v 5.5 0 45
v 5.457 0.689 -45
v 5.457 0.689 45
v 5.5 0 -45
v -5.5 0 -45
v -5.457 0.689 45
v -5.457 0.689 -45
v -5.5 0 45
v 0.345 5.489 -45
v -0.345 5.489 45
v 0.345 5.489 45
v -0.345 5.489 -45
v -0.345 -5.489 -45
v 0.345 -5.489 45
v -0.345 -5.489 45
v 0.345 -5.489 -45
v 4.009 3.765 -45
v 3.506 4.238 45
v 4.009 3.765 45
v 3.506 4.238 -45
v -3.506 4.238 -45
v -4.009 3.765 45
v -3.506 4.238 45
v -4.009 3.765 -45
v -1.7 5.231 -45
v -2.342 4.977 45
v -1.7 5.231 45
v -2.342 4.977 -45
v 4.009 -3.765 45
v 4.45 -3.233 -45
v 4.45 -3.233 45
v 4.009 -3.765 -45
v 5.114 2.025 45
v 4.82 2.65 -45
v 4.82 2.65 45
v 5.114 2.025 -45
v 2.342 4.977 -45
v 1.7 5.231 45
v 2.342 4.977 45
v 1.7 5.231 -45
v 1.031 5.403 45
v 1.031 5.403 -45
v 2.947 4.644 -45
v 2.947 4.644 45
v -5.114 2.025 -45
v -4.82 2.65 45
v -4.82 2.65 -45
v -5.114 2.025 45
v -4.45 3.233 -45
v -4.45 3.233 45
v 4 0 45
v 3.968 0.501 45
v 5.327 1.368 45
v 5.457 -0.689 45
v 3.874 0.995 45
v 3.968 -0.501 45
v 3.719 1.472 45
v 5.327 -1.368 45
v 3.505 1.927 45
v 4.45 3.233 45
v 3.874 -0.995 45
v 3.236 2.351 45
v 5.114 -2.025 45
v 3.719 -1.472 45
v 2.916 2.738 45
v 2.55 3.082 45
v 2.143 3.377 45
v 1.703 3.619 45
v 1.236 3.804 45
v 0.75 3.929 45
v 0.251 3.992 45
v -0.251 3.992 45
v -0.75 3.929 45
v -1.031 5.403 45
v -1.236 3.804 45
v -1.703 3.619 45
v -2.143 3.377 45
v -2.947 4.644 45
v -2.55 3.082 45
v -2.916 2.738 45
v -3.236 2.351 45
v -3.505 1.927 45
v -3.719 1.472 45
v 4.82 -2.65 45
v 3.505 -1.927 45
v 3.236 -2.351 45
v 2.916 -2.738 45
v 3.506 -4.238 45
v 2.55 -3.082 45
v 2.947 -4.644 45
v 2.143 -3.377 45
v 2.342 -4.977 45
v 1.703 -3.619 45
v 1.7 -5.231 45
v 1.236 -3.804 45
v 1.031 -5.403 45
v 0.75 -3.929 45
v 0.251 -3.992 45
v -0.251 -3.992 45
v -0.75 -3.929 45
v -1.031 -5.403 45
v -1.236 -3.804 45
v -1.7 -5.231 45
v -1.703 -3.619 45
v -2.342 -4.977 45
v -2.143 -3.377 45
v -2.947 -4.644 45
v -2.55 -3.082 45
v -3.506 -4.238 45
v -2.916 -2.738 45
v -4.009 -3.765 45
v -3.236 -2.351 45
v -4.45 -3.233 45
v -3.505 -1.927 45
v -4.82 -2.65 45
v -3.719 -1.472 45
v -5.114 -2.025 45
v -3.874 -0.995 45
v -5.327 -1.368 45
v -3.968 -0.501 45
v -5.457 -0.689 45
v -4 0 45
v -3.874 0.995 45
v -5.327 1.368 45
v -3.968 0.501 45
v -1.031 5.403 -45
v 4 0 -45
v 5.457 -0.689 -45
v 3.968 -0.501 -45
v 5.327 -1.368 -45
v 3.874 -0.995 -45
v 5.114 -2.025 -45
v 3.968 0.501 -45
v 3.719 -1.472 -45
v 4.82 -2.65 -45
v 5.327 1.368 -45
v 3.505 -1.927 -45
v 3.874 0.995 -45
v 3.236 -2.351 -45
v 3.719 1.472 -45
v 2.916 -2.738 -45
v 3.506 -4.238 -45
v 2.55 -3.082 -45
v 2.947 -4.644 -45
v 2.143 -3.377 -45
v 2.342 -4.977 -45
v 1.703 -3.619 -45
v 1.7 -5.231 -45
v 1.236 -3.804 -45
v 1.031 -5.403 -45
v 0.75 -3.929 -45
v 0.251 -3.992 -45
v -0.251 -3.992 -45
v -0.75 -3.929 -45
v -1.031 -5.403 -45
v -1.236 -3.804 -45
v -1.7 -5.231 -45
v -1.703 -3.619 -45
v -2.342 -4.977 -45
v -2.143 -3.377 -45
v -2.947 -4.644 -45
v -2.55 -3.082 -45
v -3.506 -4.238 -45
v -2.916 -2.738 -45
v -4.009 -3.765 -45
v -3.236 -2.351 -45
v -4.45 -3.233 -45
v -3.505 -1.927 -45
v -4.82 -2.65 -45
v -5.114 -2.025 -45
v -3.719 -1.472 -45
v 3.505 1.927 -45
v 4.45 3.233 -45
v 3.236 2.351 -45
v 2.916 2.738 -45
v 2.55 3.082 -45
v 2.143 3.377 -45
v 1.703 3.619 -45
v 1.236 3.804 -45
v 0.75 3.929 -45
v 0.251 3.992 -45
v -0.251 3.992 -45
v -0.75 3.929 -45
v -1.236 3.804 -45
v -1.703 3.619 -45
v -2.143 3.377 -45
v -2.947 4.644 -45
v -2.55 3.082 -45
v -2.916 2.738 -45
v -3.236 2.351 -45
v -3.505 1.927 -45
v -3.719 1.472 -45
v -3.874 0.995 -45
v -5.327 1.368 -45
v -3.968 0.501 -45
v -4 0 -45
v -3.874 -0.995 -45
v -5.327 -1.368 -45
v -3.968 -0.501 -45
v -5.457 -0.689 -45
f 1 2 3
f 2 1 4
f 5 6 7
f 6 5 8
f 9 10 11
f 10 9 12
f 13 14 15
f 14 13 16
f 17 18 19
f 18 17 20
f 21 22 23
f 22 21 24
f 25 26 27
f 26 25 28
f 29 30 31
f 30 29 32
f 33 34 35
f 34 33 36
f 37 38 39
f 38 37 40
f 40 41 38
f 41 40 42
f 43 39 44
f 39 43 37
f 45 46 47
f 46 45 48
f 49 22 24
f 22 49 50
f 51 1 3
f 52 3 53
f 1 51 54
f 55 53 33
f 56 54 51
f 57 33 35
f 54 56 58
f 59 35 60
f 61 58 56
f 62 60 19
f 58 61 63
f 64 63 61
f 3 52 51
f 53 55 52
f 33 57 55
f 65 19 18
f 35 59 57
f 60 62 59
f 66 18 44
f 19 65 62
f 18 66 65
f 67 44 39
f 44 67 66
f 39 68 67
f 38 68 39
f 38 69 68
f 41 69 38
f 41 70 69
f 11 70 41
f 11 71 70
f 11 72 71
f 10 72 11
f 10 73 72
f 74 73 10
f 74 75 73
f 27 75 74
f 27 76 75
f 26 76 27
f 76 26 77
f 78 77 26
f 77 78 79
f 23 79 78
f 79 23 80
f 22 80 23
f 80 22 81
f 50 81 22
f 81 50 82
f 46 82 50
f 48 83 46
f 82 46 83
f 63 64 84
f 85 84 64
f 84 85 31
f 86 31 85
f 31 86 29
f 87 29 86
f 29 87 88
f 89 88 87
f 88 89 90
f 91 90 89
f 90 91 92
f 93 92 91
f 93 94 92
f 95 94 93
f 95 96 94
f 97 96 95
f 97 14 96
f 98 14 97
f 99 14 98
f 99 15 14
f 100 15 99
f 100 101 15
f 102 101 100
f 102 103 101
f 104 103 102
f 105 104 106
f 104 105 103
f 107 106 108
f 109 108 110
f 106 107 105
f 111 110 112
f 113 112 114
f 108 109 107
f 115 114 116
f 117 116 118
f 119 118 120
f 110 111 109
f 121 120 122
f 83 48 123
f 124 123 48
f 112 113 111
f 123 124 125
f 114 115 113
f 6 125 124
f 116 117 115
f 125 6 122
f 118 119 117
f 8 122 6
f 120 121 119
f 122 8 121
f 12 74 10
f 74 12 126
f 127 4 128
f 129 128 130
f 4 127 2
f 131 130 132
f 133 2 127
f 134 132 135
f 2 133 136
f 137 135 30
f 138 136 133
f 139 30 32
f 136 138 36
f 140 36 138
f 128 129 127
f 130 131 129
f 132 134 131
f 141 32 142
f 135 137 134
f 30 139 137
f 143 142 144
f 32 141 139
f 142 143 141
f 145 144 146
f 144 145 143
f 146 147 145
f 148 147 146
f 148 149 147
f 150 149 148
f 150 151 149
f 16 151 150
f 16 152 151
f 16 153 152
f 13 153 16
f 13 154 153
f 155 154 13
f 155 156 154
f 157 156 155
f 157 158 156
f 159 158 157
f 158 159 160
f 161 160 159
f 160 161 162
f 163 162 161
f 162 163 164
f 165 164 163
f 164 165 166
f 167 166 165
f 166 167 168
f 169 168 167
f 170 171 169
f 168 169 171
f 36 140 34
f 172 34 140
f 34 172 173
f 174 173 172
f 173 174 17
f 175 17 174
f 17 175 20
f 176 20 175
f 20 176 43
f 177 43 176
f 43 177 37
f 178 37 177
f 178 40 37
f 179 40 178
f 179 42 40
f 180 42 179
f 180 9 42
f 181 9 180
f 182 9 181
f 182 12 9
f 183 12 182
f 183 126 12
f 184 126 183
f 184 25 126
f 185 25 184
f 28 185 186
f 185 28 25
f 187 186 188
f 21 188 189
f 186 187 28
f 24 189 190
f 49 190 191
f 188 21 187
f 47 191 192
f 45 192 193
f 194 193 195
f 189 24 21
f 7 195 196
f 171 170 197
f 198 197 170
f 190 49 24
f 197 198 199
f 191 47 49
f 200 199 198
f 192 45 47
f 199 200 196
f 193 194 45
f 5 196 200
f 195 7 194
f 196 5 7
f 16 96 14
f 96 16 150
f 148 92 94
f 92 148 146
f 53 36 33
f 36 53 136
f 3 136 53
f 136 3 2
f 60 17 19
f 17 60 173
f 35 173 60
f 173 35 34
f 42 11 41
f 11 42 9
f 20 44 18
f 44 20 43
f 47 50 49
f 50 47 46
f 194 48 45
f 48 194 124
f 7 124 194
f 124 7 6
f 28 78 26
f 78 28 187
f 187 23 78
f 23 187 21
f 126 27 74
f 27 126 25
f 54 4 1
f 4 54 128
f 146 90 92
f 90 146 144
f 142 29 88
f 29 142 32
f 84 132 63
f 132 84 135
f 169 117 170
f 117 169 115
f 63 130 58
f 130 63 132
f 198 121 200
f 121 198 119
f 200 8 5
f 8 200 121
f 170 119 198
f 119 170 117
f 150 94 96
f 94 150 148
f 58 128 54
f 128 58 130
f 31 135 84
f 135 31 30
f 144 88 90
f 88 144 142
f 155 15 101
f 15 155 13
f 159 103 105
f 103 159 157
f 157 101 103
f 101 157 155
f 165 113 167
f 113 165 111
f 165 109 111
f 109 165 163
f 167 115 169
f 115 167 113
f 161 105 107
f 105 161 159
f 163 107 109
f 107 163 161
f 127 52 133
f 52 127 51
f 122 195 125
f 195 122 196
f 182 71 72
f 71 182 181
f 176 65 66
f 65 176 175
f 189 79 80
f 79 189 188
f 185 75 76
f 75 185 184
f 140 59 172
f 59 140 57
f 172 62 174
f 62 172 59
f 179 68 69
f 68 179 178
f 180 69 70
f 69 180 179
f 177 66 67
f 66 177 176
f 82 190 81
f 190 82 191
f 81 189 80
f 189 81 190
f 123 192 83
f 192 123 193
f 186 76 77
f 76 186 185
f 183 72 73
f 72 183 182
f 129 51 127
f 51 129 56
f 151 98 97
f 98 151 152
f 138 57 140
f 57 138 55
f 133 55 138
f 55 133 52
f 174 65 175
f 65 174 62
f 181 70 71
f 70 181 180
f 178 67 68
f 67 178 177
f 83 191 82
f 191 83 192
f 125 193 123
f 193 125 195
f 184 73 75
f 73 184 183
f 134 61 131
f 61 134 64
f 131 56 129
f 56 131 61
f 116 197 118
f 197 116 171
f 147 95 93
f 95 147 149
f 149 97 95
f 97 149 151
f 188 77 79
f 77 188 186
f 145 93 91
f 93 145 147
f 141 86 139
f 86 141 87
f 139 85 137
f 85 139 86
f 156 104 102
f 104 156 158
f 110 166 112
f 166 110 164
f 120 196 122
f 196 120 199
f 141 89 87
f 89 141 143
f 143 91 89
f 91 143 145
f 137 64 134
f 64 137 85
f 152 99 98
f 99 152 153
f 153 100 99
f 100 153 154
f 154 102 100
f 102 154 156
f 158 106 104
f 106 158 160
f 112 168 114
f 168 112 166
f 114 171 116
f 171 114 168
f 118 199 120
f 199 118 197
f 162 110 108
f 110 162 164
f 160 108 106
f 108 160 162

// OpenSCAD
$fn = 50;


difference() {
	union() {
		translate(v = [0, 0, -45.0000000000]) {
			cylinder(h = 90, r = 5.5000000000);
		}
	}
	union() {
		translate(v = [0, 0, -100.0000000000]) {
			cylinder(h = 200, r = 4);
		}
	}
}
